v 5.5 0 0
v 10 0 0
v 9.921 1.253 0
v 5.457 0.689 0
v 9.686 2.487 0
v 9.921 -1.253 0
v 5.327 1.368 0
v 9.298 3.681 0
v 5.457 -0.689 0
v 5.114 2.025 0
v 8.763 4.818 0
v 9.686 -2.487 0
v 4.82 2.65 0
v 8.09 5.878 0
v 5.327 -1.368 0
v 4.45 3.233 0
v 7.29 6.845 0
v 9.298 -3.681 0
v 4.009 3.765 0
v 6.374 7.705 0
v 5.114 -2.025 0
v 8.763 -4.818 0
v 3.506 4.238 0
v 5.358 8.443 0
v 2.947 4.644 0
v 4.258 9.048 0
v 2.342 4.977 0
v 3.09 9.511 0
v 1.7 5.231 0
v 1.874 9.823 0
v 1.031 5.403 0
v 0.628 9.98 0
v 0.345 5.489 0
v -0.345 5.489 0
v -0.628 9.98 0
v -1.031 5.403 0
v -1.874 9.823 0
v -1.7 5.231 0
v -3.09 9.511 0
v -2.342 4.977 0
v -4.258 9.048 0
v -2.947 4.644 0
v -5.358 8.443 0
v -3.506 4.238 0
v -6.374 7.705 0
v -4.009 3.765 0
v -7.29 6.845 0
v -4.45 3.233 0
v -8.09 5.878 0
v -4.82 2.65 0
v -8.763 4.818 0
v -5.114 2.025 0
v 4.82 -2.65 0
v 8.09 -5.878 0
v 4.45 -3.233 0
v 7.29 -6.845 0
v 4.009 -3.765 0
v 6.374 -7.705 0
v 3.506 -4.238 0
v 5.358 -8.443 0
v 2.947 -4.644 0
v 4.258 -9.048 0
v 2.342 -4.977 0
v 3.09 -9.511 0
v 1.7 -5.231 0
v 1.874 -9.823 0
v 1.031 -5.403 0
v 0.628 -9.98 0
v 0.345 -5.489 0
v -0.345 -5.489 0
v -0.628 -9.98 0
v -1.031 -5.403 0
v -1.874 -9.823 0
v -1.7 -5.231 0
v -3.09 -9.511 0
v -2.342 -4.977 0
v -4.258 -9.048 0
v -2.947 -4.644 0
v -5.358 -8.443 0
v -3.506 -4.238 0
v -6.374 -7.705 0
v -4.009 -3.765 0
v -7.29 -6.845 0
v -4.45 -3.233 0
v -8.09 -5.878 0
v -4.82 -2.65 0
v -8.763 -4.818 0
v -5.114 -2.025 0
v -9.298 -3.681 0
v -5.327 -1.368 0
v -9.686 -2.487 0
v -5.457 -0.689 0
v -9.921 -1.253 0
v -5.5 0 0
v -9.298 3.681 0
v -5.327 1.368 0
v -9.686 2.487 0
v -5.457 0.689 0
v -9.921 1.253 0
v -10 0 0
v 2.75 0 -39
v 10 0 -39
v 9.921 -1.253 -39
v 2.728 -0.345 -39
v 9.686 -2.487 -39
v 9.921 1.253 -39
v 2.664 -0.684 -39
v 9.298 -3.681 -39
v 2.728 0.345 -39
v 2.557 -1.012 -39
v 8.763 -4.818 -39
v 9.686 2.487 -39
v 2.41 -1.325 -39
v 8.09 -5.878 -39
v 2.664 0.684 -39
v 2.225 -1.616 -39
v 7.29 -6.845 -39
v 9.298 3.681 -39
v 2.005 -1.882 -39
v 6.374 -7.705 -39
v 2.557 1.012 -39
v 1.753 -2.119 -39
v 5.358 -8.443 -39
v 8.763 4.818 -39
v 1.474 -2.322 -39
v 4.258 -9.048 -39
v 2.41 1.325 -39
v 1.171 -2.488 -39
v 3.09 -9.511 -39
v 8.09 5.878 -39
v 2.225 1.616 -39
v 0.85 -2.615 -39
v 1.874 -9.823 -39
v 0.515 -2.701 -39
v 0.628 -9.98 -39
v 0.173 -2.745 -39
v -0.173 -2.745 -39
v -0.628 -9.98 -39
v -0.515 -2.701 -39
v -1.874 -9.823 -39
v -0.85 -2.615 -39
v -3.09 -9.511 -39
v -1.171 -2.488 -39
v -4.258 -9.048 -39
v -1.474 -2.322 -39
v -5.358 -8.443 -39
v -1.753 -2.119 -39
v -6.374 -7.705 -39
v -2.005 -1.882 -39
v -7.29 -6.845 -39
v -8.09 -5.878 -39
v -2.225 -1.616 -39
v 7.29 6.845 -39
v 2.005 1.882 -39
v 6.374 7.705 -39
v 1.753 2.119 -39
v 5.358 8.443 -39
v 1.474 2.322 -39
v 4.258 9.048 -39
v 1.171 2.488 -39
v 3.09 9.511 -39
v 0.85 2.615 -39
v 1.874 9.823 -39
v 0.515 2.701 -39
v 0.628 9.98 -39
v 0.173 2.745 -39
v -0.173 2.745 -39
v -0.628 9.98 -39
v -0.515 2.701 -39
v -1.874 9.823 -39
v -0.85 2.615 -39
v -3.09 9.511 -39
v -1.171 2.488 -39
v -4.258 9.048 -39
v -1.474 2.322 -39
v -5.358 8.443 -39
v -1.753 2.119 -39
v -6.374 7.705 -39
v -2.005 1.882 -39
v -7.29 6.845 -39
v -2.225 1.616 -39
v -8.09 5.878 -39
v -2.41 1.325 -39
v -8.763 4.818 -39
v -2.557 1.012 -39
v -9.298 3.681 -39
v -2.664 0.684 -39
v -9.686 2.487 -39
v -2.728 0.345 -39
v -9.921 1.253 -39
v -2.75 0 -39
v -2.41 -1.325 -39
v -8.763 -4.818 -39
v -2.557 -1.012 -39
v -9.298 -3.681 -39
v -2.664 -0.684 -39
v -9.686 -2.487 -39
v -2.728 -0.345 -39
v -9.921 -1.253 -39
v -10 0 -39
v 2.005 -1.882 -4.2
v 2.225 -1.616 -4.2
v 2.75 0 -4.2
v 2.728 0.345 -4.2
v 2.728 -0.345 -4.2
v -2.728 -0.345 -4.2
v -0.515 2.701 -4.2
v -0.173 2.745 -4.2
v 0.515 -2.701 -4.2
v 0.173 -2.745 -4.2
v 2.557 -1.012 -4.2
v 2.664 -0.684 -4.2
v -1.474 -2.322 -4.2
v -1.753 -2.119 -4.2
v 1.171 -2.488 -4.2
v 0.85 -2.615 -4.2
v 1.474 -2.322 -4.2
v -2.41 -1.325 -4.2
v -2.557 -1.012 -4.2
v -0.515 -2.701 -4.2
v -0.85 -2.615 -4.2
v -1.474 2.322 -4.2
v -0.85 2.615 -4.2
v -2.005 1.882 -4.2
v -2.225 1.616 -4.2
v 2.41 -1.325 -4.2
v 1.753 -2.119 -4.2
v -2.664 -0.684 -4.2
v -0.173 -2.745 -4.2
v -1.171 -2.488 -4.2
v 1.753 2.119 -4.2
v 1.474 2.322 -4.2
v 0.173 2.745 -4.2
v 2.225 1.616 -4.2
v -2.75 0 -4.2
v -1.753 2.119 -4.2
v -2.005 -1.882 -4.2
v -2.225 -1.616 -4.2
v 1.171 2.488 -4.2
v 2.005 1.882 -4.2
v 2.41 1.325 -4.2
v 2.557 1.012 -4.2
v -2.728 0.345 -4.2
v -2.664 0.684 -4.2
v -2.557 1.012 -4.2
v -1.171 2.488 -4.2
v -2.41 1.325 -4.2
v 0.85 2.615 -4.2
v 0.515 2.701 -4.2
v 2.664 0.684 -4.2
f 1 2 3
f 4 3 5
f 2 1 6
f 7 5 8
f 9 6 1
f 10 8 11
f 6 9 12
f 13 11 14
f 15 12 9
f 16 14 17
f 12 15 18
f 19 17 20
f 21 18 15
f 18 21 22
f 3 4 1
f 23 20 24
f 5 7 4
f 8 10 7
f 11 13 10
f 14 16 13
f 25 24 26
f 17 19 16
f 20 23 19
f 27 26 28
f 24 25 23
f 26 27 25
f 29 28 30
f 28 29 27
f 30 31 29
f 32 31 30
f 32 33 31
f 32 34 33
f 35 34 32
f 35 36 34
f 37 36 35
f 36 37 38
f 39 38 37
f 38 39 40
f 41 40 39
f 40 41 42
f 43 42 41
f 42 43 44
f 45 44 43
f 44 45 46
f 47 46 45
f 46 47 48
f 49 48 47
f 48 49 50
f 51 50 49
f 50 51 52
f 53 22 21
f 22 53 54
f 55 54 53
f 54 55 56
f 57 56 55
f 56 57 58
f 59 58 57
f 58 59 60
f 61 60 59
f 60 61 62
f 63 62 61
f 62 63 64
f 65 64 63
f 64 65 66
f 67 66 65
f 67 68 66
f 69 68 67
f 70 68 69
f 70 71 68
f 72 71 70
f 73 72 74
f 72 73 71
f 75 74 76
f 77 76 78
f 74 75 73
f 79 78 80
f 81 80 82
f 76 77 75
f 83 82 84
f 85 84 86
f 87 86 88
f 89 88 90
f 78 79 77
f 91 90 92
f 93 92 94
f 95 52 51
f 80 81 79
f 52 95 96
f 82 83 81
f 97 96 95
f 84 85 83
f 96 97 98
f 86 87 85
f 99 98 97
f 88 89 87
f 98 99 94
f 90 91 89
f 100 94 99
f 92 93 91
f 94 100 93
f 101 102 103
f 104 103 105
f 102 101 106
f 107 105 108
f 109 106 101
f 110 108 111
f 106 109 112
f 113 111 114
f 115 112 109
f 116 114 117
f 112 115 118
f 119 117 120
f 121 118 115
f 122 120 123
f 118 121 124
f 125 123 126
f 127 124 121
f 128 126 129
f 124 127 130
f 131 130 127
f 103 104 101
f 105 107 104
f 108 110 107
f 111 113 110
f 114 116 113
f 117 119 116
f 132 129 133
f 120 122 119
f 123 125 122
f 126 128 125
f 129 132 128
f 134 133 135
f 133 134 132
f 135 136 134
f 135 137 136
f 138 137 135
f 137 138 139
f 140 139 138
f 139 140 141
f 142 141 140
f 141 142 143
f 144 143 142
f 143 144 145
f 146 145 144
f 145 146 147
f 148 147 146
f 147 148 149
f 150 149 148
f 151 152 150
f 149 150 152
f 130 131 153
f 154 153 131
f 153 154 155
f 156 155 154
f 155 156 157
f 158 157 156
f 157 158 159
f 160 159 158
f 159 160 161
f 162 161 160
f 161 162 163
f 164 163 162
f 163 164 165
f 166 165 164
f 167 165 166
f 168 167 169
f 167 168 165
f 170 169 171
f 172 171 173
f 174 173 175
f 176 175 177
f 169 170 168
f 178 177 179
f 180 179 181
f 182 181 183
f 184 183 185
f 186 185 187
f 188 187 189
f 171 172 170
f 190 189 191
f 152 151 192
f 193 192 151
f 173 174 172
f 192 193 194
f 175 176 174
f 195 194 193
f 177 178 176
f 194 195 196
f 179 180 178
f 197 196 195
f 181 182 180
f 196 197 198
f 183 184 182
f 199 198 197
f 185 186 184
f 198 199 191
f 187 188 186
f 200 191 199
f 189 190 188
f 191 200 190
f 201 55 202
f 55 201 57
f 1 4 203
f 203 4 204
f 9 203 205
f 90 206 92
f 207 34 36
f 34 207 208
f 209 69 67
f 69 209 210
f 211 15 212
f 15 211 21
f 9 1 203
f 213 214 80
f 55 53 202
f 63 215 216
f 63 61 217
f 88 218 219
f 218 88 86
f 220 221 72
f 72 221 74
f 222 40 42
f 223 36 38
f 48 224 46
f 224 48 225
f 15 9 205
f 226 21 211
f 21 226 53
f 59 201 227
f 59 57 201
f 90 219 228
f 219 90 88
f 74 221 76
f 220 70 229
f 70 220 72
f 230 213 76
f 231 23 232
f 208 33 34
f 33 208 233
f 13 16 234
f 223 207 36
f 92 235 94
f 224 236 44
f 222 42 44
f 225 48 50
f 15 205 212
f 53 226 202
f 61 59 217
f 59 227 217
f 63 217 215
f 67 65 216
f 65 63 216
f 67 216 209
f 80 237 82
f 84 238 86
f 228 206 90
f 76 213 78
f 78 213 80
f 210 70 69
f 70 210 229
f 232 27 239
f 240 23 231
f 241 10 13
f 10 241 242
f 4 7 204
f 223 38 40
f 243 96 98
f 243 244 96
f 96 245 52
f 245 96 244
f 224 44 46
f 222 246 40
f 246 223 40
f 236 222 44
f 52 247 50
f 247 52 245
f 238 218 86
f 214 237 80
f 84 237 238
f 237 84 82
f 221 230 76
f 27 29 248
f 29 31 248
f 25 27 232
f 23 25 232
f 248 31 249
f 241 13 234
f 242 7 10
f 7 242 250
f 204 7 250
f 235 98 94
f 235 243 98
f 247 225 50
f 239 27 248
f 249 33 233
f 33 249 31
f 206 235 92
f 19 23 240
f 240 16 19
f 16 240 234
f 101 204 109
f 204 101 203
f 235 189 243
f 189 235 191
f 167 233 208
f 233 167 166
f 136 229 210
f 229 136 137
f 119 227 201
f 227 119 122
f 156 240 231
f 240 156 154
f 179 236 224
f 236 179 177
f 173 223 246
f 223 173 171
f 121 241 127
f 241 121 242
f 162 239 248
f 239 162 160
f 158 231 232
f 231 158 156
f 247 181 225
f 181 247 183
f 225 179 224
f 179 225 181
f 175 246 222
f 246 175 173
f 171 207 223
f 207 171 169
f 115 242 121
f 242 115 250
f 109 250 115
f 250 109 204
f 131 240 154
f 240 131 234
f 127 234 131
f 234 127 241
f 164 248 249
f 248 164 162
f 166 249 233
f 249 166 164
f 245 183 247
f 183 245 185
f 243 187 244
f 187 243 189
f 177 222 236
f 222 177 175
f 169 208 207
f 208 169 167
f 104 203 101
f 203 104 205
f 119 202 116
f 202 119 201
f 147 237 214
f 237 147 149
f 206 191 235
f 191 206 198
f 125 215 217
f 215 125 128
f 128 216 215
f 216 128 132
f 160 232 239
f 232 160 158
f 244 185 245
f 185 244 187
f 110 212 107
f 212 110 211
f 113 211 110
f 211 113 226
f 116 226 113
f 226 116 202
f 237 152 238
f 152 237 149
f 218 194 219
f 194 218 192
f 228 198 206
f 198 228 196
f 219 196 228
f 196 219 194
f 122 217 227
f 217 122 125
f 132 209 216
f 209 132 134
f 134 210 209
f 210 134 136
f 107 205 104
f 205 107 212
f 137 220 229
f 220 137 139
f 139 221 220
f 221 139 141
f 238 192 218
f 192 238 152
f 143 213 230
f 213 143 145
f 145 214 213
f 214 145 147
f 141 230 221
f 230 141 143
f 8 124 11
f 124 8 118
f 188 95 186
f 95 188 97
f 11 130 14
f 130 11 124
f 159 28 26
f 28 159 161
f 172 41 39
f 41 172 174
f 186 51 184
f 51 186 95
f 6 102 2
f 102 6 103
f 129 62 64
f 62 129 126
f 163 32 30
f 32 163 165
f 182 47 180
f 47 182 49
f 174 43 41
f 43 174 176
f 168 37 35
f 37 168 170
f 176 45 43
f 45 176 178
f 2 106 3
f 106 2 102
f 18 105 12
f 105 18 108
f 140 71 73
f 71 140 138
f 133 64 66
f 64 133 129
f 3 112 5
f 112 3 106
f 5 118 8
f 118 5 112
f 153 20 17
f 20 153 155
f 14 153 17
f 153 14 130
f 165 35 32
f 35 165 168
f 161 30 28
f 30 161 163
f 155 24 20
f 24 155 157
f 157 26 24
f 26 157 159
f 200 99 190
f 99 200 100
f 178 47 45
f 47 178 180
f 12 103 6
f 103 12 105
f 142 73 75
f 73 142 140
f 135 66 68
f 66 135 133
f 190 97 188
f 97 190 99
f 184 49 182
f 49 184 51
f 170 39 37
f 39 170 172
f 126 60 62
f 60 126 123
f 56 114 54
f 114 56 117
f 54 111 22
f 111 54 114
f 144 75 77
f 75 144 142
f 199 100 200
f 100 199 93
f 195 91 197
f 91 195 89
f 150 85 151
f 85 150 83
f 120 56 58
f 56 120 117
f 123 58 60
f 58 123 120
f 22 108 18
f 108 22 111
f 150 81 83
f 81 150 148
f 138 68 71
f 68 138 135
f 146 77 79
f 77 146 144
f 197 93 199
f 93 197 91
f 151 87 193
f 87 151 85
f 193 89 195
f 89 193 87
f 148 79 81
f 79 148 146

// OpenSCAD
$fn = 50;


difference() {
	union() {
		translate(v = [0, 0, -39.0000000000]) {
			cylinder(h = 39, r = 10.0000000000);
		}
		cylinder(h = 0, r = 13.0000000000);
	}
	union() {
		translate(v = [0, 0, 0]) {
			rotate(a = [0, 0, 0]) {
				difference() {
					union() {
						#translate(v = [0, 0, -39.0000000000]) {
							cylinder(h = 39, r = 2.2500000000);
						}
						#translate(v = [0, 0, -4.2000000000]) {
							cylinder(h = 4.2000000000, r1 = 2.7500000000, r2 = 5.5000000000);
						}
						#translate(v = [0, 0, -39.0000000000]) {
							cylinder(h = 39, r = 2.7500000000);
						}
						#translate(v = [0, 0, -39.0000000000]) {
							cylinder(h = 39, r = 2.2500000000);
						}
					}
					union();
				}
			}
		}
	}
}
